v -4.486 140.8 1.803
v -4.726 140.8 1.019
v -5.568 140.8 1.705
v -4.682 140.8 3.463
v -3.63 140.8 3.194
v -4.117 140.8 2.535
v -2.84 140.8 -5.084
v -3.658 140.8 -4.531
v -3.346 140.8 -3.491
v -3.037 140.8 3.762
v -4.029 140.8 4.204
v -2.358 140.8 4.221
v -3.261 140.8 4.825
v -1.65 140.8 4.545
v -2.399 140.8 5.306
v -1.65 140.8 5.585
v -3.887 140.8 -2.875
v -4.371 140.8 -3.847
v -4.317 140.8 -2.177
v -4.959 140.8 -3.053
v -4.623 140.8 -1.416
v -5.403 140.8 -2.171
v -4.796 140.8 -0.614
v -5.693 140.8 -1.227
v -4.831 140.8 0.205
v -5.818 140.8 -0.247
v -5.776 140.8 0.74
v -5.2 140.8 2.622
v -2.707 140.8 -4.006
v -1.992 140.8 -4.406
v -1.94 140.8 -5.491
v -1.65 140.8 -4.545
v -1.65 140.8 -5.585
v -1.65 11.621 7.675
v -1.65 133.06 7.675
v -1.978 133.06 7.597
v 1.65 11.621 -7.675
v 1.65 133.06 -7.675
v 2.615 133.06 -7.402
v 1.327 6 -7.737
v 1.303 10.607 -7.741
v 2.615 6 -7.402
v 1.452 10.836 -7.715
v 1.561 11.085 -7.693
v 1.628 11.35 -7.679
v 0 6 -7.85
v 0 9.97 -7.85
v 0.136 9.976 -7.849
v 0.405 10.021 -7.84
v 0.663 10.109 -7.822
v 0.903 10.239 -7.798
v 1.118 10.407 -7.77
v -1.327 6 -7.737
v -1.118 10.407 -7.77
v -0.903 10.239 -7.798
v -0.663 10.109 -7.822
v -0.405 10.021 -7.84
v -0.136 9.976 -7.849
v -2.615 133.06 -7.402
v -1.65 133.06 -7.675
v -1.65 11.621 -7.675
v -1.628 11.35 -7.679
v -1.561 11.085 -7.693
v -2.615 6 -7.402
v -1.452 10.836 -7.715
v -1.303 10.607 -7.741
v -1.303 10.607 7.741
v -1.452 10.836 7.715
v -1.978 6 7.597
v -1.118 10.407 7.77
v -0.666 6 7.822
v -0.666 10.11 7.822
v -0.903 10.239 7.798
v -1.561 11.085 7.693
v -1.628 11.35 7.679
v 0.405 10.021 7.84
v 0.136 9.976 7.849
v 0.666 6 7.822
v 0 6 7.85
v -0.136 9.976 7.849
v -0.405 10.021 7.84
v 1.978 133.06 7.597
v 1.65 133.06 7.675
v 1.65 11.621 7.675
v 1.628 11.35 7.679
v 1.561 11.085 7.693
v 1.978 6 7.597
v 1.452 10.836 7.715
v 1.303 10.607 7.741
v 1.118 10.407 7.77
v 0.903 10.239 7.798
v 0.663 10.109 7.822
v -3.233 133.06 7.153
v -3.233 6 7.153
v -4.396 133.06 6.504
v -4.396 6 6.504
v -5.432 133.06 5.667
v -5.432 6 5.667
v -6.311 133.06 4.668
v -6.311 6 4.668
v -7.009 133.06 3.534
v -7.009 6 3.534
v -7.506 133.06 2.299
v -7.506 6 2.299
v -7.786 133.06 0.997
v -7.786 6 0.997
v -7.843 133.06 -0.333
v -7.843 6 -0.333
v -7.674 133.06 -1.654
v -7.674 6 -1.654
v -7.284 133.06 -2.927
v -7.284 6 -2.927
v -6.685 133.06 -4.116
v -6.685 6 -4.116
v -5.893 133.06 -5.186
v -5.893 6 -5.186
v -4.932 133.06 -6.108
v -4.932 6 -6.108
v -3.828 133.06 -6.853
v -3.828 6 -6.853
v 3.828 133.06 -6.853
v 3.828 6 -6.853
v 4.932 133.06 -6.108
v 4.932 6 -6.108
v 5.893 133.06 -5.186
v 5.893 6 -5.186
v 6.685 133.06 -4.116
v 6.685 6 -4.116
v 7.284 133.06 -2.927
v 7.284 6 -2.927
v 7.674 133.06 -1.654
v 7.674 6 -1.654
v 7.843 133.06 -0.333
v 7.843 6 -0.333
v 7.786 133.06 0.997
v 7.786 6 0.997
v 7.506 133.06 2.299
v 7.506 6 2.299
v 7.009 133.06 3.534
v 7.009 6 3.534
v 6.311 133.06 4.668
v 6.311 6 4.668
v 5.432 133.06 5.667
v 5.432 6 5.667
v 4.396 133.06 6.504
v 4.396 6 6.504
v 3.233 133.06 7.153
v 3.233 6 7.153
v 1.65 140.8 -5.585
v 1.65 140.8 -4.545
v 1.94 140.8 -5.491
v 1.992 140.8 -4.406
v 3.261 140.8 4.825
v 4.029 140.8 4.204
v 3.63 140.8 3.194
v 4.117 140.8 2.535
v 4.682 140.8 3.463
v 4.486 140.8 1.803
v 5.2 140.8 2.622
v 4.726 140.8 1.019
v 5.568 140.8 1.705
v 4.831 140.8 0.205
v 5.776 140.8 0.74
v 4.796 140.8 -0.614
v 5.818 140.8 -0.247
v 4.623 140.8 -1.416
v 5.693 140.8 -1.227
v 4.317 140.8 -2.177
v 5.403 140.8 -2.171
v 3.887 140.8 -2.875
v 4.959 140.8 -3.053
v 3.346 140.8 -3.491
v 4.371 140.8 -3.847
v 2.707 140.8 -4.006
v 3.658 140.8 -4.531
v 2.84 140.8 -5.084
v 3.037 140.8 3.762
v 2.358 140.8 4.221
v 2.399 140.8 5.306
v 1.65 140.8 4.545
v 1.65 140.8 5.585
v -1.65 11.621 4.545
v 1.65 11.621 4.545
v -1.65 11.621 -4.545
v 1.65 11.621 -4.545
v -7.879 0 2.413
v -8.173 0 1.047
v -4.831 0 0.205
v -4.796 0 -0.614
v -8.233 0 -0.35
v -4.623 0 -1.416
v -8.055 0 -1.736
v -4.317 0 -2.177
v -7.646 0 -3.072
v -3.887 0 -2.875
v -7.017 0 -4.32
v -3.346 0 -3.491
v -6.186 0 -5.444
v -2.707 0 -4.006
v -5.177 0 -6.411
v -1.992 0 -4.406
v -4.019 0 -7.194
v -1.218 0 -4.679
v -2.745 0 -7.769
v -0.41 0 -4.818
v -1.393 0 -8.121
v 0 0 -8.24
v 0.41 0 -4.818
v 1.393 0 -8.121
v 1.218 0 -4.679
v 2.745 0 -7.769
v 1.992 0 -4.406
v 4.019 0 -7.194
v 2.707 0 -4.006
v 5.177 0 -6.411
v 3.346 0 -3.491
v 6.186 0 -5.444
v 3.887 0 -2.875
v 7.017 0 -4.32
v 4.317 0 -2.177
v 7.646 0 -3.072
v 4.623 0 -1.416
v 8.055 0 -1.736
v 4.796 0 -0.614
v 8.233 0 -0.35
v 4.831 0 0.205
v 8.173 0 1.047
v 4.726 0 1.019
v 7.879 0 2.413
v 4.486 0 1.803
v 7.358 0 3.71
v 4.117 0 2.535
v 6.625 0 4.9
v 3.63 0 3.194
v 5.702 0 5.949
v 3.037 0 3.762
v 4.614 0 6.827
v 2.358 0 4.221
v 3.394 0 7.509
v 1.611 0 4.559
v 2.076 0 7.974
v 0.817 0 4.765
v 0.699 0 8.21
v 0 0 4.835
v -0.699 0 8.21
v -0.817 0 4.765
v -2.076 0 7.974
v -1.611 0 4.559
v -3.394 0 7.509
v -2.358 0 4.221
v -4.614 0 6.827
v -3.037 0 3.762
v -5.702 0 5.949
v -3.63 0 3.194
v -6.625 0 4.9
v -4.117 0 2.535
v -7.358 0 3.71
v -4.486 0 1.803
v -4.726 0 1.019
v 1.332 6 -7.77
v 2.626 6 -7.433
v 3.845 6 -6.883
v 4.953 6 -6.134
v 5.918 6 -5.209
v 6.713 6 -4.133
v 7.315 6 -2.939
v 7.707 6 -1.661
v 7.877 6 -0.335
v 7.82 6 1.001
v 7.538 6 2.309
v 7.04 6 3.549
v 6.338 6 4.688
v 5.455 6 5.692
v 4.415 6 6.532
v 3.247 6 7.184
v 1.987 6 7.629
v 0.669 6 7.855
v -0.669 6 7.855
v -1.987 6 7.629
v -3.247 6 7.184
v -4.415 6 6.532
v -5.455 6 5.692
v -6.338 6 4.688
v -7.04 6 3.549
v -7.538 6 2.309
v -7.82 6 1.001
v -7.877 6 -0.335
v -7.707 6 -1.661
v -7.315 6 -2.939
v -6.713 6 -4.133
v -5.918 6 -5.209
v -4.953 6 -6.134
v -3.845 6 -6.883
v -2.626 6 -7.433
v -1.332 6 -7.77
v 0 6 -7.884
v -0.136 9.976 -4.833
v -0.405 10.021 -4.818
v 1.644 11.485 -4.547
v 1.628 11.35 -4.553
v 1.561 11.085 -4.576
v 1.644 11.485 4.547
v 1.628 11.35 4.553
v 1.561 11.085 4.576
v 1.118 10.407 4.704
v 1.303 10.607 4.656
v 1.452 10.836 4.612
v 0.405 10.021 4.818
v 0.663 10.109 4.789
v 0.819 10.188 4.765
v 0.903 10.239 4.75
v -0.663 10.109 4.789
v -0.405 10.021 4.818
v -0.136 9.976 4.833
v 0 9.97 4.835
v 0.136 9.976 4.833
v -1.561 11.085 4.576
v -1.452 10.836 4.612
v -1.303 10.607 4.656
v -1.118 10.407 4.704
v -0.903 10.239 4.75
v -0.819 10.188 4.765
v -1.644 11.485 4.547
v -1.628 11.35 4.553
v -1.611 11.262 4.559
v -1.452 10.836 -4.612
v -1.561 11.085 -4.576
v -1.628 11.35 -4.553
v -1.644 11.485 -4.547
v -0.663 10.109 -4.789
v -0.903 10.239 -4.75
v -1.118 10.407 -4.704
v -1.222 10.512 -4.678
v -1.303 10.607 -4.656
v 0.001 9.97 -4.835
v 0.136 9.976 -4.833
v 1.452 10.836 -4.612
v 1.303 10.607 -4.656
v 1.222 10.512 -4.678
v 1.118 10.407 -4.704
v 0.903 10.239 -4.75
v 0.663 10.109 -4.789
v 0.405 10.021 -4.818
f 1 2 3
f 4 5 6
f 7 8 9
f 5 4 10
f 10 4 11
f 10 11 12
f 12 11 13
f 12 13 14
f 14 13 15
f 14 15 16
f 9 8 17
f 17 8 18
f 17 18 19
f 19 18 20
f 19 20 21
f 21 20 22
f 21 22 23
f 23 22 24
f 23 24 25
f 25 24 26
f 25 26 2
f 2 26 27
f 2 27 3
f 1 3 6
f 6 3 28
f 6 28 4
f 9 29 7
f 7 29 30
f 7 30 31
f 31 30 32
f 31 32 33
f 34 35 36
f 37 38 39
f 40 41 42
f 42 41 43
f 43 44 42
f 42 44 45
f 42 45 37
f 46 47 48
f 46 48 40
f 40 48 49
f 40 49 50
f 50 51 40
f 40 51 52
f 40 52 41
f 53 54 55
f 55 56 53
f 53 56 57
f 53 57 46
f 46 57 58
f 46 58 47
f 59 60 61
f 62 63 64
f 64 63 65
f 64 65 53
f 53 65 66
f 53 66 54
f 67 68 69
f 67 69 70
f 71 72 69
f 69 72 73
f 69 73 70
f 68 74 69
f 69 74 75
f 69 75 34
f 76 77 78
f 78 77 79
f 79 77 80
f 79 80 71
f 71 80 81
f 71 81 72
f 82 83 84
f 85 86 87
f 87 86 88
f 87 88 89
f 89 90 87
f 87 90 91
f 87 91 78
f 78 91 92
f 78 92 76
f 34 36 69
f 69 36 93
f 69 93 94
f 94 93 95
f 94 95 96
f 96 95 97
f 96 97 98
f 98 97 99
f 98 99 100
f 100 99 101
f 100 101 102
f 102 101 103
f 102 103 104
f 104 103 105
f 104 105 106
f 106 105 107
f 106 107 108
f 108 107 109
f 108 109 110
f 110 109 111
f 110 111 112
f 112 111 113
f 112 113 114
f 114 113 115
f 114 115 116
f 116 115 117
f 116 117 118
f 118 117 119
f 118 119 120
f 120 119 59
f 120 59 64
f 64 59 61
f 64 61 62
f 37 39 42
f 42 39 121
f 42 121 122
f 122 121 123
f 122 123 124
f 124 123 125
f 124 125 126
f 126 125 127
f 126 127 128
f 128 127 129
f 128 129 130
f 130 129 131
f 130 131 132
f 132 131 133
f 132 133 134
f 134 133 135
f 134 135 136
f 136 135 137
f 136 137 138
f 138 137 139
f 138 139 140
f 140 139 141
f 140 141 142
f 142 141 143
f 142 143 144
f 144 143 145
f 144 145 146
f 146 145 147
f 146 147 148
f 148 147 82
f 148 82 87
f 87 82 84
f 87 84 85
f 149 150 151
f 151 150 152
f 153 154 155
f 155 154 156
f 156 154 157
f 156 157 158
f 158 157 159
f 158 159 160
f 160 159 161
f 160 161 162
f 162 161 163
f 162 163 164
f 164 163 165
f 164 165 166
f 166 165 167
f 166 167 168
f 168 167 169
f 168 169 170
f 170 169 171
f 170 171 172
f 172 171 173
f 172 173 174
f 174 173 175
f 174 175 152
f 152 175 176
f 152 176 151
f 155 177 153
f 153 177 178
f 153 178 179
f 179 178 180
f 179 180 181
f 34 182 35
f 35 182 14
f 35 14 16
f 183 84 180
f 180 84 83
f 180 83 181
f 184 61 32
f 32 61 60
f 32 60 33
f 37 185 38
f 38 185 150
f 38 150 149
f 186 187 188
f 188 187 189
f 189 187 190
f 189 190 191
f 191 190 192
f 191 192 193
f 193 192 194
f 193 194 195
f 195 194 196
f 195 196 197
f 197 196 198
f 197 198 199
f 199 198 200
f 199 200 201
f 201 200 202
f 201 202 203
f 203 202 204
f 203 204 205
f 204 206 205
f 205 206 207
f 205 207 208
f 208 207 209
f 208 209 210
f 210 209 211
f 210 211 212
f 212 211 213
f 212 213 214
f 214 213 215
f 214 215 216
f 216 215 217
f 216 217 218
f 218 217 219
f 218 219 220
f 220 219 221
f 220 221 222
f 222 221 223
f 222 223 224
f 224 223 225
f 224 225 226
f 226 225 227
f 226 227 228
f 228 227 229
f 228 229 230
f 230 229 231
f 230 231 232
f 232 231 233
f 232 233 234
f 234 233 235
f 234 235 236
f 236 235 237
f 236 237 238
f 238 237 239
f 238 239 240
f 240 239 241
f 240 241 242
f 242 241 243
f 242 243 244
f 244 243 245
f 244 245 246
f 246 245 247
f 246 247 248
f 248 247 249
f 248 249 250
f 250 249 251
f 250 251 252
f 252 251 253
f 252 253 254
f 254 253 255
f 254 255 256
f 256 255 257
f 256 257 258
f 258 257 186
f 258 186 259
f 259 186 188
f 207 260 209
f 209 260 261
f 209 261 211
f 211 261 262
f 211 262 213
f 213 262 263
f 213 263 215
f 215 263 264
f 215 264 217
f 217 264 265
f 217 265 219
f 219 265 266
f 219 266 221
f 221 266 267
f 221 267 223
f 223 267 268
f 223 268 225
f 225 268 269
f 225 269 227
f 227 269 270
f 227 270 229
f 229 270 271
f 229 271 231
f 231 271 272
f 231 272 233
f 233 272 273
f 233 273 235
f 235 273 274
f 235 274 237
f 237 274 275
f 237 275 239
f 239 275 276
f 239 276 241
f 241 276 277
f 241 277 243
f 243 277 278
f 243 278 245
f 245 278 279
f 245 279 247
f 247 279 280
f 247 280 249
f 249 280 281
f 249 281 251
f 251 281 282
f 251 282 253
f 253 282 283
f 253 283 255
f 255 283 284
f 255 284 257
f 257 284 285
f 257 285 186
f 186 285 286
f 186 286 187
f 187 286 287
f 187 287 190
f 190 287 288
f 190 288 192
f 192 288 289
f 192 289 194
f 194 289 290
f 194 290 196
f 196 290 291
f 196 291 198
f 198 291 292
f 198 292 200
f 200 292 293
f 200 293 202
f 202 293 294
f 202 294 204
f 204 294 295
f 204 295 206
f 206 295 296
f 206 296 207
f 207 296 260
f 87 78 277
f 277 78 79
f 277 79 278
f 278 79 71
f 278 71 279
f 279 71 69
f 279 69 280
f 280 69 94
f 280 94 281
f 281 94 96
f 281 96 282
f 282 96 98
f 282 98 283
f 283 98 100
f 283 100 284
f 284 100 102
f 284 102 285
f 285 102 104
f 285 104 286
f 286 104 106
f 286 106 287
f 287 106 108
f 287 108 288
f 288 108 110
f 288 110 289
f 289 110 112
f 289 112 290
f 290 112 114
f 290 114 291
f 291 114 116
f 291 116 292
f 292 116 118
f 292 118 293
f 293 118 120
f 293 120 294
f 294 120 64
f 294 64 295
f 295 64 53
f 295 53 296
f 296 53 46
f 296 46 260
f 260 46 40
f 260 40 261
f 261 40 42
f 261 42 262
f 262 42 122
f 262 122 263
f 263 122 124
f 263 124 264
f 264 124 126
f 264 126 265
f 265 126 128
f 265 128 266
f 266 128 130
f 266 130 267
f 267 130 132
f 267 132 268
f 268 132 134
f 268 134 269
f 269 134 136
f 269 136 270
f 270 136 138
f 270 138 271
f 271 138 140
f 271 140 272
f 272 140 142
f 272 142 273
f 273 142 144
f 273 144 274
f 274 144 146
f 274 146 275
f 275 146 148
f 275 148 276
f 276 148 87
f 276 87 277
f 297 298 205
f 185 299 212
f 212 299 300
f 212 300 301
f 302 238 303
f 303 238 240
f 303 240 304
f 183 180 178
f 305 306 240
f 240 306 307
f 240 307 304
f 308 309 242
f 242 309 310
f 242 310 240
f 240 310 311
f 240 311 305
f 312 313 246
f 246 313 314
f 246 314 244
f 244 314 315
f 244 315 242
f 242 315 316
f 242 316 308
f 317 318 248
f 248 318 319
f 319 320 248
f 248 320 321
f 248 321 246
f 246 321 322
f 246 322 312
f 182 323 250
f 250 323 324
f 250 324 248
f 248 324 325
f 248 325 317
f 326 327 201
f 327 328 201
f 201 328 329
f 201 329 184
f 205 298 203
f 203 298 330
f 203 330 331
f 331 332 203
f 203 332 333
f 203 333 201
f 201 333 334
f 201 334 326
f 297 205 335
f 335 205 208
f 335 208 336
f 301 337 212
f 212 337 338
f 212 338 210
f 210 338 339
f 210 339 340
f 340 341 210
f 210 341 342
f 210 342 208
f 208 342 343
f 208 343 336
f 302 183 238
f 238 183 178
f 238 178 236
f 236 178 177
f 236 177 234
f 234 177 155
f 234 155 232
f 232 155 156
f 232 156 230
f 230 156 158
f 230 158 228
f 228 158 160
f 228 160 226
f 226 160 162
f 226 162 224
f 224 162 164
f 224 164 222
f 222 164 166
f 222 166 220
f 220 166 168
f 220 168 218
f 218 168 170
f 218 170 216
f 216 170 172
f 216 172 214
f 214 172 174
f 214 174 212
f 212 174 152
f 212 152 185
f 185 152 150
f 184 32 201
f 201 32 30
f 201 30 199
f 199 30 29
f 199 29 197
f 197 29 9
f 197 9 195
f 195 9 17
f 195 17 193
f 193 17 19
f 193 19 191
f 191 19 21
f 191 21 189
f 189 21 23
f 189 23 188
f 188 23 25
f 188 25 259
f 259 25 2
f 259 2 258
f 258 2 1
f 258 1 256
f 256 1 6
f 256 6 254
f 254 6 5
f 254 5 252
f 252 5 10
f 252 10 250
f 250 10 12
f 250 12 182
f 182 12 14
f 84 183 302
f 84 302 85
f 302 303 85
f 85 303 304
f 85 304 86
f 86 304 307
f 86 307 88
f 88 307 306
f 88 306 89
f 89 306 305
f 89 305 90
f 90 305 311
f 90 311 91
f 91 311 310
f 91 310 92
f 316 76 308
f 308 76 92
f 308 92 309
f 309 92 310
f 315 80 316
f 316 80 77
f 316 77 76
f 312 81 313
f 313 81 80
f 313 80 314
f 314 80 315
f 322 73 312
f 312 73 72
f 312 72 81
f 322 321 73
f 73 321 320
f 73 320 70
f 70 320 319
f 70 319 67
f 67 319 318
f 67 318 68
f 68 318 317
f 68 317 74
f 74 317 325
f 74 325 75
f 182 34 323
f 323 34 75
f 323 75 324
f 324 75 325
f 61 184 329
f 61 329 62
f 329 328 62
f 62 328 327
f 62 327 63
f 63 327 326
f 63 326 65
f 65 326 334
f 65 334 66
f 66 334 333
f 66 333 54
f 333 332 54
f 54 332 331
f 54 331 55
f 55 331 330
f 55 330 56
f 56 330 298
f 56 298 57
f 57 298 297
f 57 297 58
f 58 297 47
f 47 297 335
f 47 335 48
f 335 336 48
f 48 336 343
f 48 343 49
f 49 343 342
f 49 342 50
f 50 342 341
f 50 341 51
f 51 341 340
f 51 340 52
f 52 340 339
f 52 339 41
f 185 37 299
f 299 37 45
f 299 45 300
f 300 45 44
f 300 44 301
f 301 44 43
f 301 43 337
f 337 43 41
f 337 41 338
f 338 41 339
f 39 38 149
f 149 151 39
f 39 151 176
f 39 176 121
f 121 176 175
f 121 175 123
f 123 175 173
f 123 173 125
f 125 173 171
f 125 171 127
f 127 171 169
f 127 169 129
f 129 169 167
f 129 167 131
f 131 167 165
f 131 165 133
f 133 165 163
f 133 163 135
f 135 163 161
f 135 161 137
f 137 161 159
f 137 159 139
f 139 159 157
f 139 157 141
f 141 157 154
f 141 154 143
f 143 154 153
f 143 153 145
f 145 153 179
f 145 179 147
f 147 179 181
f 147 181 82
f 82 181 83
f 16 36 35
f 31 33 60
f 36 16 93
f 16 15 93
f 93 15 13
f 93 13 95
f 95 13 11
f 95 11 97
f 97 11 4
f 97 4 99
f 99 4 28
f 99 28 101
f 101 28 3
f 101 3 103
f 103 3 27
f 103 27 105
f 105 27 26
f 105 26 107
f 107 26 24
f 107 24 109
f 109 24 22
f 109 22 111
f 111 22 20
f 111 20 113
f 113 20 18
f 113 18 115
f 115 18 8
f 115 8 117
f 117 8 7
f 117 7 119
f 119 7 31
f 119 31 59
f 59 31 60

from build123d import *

# Parameters (mm, degrees)
CROQUIS1_R                 = 8.24
SALIENTE_EXTRUIR1_DEPTH    = 6
CROQUIS3_R                 = 7.85
SALIENTE_EXTRUIR2_DEPTH    = 134.8
CROQUIS4_R                 = 4.835
CORTAR_EXTRUIR1_DEPTH      = 142.281404297
CORTAR_EXTRUIR2_DEPTH      = 142.281404297
CORTAR_EXTRUIR2_DEPTH_BACK = 142.281404297


with BuildPart() as part:
    # Croquis1 → Saliente-Extruir1 (new body)
    with BuildSketch(Plane(origin=(0, 0, 0), x_dir=(1, 0, 0), z_dir=(0, 1, 0))):
        with Locations(Location((0, 0, 0), (0, 0, 270))):
            Circle(CROQUIS1_R)
    extrude(amount=SALIENTE_EXTRUIR1_DEPTH)

    # Croquis2 → Cortar-Revolución1 (revolve, cut)
    with BuildSketch(Plane.XY, mode=Mode.PRIVATE) as cortar_revoluci_n1_sk:
        Polygon((-8.24, 0), (-7.883666073, 6), (-8.24, 6), align=None)
    revolve(cortar_revoluci_n1_sk.sketch.rotate(Axis((0, 0, 0), (0, 1, 0)), 270), axis=Axis((0, 0, 0), (0, 1, 0)), mode=Mode.SUBTRACT)

    # Croquis3 → Saliente-Extruir2 (add)
    with BuildSketch(Plane(origin=(0, 6, 0), x_dir=(1, 0, 0), z_dir=(0, 1, 0))):
        with Locations(Location((0, 0, 0), (0, 0, 270))):
            Circle(CROQUIS3_R)
    extrude(amount=SALIENTE_EXTRUIR2_DEPTH)

    # Croquis4 → Cortar-Extruir1 (cut, through all)
    with BuildSketch(Plane(origin=(0, 140.8, 0), x_dir=(1, 0, 0), z_dir=(0, 1, 0))):
        with Locations(Location((0, 0, 0), (0, 0, 270))):
            Circle(CROQUIS4_R)
    extrude(amount=-CORTAR_EXTRUIR1_DEPTH, mode=Mode.SUBTRACT)

    # Croquis5 → Cortar-Extruir2 (cut, two sides: drawn at the far end of the back side and taken through both)
    with BuildSketch(Plane.XY.offset(-CORTAR_EXTRUIR2_DEPTH_BACK)):
        with BuildLine():
            Line((1.65, 140.8), (-1.65, 140.8))
            Line((-1.65, 140.8), (-1.65, 11.621418712))
            ThreePointArc((-1.65, 11.621418712), (0, 9.97), (1.65, 11.621418712))
            Line((1.65, 11.621418712), (1.65, 140.8))
        make_face()
    extrude(amount=CORTAR_EXTRUIR2_DEPTH + CORTAR_EXTRUIR2_DEPTH_BACK, mode=Mode.SUBTRACT)

    # Croquis7 → Cortar-Revolución2 (revolve, cut)
    with BuildSketch(Plane.XY, mode=Mode.PRIVATE) as cortar_revoluci_n2_sk:
        Polygon((11.646495886, 140.8), (7.85, 133.06), (5.823247943, 140.8), align=None)
    revolve(cortar_revoluci_n2_sk.sketch.rotate(Axis((0, 140.8, 0), (0, -1, 0)), 257.866449584), axis=Axis((0, 140.8, 0), (0, -1, 0)), mode=Mode.SUBTRACT)


solid = part.part
